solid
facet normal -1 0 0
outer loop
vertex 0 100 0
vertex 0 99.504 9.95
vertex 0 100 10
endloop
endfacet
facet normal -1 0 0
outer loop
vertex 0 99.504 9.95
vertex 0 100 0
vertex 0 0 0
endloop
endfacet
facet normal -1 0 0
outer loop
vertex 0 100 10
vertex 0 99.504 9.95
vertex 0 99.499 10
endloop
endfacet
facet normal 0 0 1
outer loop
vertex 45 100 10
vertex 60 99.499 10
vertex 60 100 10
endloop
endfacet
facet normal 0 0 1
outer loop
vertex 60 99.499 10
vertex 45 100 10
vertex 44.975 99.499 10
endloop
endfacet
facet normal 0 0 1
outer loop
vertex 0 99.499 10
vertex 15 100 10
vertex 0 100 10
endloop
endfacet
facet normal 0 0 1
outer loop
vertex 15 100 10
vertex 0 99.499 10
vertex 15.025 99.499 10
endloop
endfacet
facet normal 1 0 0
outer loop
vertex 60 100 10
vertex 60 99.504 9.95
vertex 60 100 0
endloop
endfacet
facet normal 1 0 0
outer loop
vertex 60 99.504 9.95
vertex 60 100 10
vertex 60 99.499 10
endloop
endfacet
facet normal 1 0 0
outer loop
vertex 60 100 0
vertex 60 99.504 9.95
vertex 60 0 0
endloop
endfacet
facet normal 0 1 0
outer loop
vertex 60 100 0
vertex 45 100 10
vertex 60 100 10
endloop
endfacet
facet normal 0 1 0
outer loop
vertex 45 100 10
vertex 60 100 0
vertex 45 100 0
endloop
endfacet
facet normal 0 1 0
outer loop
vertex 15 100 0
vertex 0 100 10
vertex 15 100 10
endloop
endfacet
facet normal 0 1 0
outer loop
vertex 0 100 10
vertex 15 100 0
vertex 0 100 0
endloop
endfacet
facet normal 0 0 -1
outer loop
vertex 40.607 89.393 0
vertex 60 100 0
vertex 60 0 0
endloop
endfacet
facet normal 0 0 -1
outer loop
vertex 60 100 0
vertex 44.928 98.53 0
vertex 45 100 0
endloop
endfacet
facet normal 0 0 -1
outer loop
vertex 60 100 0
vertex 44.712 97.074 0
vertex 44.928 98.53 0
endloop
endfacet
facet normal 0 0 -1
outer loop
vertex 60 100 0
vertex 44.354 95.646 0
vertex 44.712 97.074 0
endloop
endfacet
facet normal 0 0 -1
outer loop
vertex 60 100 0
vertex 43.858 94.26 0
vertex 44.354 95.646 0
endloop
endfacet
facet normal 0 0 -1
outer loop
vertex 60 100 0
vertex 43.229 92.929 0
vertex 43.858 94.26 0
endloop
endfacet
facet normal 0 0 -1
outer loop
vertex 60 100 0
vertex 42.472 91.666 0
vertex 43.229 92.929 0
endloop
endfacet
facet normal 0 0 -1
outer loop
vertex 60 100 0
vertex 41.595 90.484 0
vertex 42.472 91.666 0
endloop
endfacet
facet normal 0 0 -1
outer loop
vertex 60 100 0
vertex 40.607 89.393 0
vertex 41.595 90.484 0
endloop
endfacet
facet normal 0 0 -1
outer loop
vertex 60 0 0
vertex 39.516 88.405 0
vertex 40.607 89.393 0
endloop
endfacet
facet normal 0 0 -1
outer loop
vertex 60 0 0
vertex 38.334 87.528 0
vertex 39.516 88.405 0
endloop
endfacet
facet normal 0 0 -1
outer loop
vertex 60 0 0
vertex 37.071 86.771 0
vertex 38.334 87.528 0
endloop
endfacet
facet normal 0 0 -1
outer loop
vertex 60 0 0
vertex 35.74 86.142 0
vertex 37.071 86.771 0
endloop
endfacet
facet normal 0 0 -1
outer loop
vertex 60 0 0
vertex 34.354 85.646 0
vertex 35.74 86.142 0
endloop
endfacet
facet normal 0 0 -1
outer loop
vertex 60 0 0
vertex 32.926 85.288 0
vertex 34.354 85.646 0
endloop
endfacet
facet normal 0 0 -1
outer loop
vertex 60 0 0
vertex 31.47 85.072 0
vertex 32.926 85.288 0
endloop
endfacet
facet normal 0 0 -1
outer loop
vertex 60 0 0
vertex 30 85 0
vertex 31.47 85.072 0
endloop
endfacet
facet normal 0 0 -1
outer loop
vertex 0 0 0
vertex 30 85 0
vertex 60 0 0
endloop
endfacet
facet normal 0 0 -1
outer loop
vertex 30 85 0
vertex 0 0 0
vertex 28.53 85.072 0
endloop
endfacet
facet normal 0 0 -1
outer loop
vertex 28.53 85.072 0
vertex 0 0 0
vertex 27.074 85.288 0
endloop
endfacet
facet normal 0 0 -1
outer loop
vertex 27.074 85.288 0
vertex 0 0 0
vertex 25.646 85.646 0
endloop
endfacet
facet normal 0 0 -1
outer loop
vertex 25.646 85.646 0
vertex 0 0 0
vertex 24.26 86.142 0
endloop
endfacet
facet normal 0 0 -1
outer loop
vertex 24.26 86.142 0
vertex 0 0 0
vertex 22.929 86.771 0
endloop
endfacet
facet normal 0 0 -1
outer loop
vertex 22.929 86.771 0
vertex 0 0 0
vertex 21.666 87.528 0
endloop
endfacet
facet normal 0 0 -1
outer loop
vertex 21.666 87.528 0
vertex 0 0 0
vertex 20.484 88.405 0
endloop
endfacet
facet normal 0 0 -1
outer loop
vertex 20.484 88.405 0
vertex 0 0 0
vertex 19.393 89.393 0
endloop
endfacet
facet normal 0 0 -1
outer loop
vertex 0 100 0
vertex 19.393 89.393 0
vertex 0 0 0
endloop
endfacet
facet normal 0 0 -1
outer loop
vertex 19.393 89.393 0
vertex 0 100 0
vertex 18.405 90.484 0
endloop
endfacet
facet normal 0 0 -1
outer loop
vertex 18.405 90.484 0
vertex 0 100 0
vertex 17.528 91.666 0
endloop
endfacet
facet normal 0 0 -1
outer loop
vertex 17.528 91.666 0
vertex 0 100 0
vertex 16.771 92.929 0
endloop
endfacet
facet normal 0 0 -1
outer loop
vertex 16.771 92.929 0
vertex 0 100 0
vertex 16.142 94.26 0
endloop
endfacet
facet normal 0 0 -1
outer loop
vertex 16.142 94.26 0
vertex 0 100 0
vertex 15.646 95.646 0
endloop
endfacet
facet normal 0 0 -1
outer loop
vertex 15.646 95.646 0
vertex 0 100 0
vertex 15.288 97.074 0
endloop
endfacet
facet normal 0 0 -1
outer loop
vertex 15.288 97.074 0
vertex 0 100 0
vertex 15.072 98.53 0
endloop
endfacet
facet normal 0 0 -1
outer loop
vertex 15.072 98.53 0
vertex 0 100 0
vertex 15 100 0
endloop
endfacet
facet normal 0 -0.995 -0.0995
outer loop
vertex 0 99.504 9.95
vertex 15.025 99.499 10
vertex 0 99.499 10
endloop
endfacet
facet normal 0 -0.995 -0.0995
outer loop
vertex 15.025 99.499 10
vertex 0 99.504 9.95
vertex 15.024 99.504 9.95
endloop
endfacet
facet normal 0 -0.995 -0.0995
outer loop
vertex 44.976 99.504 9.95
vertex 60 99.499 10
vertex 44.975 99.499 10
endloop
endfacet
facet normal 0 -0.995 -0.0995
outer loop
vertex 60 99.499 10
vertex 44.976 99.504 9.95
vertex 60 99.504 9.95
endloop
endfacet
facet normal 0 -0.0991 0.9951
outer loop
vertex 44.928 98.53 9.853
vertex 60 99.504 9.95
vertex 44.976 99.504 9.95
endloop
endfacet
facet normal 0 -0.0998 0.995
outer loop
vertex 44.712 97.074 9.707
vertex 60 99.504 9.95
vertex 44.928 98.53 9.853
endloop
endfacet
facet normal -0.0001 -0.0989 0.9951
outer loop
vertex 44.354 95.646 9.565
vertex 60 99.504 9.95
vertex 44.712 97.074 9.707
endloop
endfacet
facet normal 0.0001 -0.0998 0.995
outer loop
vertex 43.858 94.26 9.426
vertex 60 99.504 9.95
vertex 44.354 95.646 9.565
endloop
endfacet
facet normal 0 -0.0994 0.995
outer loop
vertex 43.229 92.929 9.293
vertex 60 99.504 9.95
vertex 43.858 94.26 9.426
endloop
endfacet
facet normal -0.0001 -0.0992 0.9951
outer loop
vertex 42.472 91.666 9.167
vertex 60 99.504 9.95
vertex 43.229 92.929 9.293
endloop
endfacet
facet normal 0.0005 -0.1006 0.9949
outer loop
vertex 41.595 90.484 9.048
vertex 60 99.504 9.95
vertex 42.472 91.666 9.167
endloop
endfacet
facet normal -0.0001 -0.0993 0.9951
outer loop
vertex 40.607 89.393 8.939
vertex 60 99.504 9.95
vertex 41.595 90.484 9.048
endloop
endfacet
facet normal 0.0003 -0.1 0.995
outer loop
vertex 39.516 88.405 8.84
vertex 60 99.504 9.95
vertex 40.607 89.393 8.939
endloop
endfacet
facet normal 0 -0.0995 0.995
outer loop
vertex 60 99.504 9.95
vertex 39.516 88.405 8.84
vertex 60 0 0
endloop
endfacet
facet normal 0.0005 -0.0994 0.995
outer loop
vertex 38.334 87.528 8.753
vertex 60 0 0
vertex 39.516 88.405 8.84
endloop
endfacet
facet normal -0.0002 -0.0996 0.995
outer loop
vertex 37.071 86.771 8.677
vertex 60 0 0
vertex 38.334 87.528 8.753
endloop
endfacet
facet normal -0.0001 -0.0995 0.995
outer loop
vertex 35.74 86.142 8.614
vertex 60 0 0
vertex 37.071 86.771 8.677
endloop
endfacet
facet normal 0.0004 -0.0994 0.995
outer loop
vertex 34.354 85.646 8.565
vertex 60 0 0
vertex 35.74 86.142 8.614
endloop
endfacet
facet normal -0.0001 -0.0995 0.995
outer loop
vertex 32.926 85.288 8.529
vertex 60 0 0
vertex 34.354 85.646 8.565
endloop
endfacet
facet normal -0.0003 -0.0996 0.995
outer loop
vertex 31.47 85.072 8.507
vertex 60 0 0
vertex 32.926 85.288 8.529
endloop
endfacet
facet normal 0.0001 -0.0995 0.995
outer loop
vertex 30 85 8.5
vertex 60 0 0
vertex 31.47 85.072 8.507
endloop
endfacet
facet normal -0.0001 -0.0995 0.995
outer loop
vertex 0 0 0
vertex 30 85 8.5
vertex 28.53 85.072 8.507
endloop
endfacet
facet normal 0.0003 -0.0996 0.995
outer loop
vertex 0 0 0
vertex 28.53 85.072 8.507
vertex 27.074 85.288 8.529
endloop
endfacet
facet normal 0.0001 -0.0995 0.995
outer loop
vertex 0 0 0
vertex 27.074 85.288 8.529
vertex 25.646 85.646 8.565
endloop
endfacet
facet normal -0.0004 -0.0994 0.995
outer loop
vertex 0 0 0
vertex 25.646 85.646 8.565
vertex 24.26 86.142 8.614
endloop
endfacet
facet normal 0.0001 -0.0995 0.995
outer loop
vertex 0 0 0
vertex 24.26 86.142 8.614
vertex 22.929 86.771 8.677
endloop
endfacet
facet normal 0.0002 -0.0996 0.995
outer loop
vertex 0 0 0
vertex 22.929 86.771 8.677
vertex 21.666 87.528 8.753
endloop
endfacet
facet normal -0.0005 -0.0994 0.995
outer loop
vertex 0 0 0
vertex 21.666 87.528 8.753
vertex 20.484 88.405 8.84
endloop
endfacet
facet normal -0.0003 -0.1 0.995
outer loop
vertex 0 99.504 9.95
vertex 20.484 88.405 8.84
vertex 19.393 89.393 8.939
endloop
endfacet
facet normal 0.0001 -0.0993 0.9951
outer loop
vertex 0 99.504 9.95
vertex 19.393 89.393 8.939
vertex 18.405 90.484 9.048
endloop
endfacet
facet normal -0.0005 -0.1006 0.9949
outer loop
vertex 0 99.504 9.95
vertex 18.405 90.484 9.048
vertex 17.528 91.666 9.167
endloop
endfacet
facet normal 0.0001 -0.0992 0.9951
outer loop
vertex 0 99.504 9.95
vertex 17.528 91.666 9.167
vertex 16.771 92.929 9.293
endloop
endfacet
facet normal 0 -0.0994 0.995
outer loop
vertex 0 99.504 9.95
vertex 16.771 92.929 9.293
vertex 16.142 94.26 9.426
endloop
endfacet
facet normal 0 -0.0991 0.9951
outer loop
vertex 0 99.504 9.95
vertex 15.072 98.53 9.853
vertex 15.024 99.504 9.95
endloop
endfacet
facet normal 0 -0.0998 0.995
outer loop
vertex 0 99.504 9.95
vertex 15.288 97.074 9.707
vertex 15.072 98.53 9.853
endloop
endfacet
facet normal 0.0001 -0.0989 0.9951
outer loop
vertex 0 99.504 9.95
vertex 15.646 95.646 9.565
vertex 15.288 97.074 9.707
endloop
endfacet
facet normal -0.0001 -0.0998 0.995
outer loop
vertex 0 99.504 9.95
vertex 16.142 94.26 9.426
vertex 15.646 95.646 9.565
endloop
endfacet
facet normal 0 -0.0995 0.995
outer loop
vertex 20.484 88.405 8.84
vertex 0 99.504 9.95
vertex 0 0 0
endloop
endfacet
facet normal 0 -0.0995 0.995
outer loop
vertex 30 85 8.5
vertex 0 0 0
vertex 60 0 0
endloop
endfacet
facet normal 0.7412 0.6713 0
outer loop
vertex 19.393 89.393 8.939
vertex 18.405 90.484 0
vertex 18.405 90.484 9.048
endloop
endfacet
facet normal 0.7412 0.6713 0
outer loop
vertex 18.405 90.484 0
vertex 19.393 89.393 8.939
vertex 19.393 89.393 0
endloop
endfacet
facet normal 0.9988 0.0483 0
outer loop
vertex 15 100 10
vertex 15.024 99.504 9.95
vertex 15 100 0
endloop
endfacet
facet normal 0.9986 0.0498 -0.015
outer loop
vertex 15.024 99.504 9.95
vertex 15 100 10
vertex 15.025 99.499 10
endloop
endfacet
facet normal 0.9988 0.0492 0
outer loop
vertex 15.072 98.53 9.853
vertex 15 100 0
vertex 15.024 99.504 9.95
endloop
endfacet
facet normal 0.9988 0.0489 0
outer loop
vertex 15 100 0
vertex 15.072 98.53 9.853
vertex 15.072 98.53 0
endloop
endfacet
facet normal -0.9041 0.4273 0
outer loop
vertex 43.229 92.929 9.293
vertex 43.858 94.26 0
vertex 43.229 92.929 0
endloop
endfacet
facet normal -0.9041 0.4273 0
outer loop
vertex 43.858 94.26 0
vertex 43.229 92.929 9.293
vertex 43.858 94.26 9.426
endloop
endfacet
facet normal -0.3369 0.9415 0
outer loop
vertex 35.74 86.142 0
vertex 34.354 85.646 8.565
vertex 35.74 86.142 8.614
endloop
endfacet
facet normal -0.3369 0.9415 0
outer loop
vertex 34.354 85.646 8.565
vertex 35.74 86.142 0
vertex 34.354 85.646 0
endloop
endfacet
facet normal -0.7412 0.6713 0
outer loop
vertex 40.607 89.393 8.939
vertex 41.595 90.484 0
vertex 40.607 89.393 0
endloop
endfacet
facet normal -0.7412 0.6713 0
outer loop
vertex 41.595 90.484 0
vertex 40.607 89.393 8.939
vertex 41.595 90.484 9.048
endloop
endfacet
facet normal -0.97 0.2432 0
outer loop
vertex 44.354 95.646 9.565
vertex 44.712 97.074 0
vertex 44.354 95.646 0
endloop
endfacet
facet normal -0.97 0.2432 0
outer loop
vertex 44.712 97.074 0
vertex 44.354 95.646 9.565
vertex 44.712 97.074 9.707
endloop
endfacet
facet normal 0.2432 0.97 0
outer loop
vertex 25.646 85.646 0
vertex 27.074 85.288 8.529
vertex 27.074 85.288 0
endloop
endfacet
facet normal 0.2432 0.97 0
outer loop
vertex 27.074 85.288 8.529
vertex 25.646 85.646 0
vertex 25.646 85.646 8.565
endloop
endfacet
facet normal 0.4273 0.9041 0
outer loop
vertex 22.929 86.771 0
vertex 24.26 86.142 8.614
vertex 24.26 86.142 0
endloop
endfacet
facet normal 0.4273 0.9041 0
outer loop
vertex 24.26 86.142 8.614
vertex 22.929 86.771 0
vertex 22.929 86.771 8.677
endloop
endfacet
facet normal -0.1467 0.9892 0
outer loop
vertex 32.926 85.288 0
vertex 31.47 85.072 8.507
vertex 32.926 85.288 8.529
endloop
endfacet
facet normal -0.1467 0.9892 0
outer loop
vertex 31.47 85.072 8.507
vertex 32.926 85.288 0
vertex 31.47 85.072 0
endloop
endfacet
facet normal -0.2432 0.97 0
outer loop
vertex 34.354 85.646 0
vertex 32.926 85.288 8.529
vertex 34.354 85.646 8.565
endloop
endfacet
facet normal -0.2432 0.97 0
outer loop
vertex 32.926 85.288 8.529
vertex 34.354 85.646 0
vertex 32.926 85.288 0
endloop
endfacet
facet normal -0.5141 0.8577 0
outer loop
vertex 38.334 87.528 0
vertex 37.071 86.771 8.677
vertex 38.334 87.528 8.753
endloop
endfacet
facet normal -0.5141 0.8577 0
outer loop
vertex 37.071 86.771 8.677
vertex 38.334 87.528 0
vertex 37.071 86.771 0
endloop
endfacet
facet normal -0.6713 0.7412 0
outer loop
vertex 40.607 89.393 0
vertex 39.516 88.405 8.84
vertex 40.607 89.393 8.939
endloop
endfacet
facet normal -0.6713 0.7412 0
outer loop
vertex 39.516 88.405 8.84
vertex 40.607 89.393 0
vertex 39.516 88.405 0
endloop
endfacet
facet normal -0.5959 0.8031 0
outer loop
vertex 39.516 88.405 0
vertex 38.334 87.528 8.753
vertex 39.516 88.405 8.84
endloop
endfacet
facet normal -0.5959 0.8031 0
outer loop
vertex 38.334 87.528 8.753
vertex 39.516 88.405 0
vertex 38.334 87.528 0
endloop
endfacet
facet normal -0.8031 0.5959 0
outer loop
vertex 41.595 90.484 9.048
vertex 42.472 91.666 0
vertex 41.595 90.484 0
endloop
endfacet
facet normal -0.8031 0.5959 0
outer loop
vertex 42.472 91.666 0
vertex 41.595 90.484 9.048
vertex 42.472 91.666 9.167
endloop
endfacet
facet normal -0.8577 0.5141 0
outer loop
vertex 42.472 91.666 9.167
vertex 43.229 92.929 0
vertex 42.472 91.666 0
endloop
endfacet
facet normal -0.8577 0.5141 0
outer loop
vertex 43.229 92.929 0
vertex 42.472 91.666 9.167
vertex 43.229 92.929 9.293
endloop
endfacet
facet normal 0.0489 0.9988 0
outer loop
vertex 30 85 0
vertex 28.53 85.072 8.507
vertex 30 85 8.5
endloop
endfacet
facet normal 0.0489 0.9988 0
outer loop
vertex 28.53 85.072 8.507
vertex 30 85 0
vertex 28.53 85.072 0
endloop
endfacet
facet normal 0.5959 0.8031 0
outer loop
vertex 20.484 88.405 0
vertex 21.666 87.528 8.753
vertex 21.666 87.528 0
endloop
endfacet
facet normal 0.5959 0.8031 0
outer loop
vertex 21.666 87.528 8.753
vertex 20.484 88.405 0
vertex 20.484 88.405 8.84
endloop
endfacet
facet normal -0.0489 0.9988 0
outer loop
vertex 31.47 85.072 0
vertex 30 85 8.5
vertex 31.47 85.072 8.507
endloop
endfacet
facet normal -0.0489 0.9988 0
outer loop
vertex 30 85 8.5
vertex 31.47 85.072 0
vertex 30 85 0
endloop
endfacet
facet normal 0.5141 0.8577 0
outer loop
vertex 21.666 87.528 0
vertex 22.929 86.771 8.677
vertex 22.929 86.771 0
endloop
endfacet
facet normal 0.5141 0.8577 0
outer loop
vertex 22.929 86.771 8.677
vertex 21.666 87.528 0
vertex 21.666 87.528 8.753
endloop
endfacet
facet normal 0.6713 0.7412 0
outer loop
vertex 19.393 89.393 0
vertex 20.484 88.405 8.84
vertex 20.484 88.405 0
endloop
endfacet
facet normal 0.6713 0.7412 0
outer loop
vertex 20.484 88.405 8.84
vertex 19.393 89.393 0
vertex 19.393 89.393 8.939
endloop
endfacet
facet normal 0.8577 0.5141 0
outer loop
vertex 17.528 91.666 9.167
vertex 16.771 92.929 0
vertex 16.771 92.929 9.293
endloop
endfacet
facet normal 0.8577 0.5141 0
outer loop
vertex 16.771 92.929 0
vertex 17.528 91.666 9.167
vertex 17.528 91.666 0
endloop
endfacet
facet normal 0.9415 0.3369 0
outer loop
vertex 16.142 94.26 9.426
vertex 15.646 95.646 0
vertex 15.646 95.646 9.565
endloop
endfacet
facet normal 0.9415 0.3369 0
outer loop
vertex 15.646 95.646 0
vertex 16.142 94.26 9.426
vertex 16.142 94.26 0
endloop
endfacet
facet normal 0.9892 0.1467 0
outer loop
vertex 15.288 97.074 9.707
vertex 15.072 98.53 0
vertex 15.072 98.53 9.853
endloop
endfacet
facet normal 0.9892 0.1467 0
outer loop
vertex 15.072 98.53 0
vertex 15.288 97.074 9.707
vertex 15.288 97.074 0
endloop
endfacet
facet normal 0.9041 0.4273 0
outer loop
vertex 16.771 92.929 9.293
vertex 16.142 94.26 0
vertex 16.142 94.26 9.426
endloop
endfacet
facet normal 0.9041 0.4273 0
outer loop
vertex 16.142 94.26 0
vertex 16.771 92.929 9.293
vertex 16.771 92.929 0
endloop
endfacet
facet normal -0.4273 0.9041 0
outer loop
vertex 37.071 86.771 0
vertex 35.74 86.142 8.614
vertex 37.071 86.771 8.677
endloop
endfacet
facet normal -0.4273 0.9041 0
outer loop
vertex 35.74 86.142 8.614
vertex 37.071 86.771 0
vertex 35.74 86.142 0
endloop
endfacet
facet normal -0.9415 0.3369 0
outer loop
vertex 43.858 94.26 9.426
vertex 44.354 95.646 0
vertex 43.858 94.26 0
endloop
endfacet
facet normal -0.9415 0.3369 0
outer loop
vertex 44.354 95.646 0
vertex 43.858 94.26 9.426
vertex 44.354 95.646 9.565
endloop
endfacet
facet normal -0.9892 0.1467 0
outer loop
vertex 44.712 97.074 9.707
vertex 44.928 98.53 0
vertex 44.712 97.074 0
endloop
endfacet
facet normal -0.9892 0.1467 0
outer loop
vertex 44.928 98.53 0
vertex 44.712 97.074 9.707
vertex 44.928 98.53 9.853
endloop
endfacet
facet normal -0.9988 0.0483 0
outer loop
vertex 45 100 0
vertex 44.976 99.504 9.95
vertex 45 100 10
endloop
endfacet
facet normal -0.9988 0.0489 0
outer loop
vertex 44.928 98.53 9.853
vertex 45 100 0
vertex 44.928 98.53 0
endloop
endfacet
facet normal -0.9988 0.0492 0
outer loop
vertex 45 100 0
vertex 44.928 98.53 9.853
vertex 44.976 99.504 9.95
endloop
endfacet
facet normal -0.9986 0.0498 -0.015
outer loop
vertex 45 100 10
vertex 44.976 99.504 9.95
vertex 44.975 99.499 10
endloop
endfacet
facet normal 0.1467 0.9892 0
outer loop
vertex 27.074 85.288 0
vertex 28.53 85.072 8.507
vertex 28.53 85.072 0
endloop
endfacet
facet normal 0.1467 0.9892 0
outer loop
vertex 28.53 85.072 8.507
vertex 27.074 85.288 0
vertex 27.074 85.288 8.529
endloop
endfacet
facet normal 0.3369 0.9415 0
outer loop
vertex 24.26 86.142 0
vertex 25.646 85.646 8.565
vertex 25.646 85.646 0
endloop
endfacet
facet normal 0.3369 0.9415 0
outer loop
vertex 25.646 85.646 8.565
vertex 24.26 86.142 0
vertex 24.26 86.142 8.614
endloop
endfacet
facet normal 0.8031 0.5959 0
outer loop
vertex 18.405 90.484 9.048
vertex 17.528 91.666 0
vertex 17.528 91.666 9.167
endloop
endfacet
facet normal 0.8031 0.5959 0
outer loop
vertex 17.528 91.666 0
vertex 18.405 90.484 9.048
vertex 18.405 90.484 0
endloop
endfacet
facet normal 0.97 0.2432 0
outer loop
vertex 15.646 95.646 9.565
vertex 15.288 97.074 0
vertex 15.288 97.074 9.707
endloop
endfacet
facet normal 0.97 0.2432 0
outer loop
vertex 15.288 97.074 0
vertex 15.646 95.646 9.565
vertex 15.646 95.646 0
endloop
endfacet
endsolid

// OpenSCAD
difference() {
	difference() {
		cube(size = [60, 100, 10]);
		rotate(a = [5.7105931375, 0, 0]) {
			cube(size = [60, 100, 10]);
		}
	}
	translate(v = [30.0000000000, 0, 0]) {
		translate(v = [0, 100, 0]) {
			cylinder($fn = 64, h = 10, r = 15);
		}
	}
}
/***********************************************
******      SolidPython code:      *************
************************************************
 

from solid import *
from solid.utils import *
import math

width = 60
length = 100
height = 10
hole_rad = 15
slope = math.atan2(height, length) * 180.0 / math.pi

stop = cube(size=[width, length, height])
ramp = rotate(a=[slope,0,0])(
    cube(size=[width, length, height])
)
hole = right(width / 2.0)(forward(length)(
    cylinder(r=hole_rad, h=height, segments=64)
))

final = stop - ramp - hole

scad_render_to_file(final, __file__.replace('.py', '.scad'))
 
 
***********************************************/
                            
